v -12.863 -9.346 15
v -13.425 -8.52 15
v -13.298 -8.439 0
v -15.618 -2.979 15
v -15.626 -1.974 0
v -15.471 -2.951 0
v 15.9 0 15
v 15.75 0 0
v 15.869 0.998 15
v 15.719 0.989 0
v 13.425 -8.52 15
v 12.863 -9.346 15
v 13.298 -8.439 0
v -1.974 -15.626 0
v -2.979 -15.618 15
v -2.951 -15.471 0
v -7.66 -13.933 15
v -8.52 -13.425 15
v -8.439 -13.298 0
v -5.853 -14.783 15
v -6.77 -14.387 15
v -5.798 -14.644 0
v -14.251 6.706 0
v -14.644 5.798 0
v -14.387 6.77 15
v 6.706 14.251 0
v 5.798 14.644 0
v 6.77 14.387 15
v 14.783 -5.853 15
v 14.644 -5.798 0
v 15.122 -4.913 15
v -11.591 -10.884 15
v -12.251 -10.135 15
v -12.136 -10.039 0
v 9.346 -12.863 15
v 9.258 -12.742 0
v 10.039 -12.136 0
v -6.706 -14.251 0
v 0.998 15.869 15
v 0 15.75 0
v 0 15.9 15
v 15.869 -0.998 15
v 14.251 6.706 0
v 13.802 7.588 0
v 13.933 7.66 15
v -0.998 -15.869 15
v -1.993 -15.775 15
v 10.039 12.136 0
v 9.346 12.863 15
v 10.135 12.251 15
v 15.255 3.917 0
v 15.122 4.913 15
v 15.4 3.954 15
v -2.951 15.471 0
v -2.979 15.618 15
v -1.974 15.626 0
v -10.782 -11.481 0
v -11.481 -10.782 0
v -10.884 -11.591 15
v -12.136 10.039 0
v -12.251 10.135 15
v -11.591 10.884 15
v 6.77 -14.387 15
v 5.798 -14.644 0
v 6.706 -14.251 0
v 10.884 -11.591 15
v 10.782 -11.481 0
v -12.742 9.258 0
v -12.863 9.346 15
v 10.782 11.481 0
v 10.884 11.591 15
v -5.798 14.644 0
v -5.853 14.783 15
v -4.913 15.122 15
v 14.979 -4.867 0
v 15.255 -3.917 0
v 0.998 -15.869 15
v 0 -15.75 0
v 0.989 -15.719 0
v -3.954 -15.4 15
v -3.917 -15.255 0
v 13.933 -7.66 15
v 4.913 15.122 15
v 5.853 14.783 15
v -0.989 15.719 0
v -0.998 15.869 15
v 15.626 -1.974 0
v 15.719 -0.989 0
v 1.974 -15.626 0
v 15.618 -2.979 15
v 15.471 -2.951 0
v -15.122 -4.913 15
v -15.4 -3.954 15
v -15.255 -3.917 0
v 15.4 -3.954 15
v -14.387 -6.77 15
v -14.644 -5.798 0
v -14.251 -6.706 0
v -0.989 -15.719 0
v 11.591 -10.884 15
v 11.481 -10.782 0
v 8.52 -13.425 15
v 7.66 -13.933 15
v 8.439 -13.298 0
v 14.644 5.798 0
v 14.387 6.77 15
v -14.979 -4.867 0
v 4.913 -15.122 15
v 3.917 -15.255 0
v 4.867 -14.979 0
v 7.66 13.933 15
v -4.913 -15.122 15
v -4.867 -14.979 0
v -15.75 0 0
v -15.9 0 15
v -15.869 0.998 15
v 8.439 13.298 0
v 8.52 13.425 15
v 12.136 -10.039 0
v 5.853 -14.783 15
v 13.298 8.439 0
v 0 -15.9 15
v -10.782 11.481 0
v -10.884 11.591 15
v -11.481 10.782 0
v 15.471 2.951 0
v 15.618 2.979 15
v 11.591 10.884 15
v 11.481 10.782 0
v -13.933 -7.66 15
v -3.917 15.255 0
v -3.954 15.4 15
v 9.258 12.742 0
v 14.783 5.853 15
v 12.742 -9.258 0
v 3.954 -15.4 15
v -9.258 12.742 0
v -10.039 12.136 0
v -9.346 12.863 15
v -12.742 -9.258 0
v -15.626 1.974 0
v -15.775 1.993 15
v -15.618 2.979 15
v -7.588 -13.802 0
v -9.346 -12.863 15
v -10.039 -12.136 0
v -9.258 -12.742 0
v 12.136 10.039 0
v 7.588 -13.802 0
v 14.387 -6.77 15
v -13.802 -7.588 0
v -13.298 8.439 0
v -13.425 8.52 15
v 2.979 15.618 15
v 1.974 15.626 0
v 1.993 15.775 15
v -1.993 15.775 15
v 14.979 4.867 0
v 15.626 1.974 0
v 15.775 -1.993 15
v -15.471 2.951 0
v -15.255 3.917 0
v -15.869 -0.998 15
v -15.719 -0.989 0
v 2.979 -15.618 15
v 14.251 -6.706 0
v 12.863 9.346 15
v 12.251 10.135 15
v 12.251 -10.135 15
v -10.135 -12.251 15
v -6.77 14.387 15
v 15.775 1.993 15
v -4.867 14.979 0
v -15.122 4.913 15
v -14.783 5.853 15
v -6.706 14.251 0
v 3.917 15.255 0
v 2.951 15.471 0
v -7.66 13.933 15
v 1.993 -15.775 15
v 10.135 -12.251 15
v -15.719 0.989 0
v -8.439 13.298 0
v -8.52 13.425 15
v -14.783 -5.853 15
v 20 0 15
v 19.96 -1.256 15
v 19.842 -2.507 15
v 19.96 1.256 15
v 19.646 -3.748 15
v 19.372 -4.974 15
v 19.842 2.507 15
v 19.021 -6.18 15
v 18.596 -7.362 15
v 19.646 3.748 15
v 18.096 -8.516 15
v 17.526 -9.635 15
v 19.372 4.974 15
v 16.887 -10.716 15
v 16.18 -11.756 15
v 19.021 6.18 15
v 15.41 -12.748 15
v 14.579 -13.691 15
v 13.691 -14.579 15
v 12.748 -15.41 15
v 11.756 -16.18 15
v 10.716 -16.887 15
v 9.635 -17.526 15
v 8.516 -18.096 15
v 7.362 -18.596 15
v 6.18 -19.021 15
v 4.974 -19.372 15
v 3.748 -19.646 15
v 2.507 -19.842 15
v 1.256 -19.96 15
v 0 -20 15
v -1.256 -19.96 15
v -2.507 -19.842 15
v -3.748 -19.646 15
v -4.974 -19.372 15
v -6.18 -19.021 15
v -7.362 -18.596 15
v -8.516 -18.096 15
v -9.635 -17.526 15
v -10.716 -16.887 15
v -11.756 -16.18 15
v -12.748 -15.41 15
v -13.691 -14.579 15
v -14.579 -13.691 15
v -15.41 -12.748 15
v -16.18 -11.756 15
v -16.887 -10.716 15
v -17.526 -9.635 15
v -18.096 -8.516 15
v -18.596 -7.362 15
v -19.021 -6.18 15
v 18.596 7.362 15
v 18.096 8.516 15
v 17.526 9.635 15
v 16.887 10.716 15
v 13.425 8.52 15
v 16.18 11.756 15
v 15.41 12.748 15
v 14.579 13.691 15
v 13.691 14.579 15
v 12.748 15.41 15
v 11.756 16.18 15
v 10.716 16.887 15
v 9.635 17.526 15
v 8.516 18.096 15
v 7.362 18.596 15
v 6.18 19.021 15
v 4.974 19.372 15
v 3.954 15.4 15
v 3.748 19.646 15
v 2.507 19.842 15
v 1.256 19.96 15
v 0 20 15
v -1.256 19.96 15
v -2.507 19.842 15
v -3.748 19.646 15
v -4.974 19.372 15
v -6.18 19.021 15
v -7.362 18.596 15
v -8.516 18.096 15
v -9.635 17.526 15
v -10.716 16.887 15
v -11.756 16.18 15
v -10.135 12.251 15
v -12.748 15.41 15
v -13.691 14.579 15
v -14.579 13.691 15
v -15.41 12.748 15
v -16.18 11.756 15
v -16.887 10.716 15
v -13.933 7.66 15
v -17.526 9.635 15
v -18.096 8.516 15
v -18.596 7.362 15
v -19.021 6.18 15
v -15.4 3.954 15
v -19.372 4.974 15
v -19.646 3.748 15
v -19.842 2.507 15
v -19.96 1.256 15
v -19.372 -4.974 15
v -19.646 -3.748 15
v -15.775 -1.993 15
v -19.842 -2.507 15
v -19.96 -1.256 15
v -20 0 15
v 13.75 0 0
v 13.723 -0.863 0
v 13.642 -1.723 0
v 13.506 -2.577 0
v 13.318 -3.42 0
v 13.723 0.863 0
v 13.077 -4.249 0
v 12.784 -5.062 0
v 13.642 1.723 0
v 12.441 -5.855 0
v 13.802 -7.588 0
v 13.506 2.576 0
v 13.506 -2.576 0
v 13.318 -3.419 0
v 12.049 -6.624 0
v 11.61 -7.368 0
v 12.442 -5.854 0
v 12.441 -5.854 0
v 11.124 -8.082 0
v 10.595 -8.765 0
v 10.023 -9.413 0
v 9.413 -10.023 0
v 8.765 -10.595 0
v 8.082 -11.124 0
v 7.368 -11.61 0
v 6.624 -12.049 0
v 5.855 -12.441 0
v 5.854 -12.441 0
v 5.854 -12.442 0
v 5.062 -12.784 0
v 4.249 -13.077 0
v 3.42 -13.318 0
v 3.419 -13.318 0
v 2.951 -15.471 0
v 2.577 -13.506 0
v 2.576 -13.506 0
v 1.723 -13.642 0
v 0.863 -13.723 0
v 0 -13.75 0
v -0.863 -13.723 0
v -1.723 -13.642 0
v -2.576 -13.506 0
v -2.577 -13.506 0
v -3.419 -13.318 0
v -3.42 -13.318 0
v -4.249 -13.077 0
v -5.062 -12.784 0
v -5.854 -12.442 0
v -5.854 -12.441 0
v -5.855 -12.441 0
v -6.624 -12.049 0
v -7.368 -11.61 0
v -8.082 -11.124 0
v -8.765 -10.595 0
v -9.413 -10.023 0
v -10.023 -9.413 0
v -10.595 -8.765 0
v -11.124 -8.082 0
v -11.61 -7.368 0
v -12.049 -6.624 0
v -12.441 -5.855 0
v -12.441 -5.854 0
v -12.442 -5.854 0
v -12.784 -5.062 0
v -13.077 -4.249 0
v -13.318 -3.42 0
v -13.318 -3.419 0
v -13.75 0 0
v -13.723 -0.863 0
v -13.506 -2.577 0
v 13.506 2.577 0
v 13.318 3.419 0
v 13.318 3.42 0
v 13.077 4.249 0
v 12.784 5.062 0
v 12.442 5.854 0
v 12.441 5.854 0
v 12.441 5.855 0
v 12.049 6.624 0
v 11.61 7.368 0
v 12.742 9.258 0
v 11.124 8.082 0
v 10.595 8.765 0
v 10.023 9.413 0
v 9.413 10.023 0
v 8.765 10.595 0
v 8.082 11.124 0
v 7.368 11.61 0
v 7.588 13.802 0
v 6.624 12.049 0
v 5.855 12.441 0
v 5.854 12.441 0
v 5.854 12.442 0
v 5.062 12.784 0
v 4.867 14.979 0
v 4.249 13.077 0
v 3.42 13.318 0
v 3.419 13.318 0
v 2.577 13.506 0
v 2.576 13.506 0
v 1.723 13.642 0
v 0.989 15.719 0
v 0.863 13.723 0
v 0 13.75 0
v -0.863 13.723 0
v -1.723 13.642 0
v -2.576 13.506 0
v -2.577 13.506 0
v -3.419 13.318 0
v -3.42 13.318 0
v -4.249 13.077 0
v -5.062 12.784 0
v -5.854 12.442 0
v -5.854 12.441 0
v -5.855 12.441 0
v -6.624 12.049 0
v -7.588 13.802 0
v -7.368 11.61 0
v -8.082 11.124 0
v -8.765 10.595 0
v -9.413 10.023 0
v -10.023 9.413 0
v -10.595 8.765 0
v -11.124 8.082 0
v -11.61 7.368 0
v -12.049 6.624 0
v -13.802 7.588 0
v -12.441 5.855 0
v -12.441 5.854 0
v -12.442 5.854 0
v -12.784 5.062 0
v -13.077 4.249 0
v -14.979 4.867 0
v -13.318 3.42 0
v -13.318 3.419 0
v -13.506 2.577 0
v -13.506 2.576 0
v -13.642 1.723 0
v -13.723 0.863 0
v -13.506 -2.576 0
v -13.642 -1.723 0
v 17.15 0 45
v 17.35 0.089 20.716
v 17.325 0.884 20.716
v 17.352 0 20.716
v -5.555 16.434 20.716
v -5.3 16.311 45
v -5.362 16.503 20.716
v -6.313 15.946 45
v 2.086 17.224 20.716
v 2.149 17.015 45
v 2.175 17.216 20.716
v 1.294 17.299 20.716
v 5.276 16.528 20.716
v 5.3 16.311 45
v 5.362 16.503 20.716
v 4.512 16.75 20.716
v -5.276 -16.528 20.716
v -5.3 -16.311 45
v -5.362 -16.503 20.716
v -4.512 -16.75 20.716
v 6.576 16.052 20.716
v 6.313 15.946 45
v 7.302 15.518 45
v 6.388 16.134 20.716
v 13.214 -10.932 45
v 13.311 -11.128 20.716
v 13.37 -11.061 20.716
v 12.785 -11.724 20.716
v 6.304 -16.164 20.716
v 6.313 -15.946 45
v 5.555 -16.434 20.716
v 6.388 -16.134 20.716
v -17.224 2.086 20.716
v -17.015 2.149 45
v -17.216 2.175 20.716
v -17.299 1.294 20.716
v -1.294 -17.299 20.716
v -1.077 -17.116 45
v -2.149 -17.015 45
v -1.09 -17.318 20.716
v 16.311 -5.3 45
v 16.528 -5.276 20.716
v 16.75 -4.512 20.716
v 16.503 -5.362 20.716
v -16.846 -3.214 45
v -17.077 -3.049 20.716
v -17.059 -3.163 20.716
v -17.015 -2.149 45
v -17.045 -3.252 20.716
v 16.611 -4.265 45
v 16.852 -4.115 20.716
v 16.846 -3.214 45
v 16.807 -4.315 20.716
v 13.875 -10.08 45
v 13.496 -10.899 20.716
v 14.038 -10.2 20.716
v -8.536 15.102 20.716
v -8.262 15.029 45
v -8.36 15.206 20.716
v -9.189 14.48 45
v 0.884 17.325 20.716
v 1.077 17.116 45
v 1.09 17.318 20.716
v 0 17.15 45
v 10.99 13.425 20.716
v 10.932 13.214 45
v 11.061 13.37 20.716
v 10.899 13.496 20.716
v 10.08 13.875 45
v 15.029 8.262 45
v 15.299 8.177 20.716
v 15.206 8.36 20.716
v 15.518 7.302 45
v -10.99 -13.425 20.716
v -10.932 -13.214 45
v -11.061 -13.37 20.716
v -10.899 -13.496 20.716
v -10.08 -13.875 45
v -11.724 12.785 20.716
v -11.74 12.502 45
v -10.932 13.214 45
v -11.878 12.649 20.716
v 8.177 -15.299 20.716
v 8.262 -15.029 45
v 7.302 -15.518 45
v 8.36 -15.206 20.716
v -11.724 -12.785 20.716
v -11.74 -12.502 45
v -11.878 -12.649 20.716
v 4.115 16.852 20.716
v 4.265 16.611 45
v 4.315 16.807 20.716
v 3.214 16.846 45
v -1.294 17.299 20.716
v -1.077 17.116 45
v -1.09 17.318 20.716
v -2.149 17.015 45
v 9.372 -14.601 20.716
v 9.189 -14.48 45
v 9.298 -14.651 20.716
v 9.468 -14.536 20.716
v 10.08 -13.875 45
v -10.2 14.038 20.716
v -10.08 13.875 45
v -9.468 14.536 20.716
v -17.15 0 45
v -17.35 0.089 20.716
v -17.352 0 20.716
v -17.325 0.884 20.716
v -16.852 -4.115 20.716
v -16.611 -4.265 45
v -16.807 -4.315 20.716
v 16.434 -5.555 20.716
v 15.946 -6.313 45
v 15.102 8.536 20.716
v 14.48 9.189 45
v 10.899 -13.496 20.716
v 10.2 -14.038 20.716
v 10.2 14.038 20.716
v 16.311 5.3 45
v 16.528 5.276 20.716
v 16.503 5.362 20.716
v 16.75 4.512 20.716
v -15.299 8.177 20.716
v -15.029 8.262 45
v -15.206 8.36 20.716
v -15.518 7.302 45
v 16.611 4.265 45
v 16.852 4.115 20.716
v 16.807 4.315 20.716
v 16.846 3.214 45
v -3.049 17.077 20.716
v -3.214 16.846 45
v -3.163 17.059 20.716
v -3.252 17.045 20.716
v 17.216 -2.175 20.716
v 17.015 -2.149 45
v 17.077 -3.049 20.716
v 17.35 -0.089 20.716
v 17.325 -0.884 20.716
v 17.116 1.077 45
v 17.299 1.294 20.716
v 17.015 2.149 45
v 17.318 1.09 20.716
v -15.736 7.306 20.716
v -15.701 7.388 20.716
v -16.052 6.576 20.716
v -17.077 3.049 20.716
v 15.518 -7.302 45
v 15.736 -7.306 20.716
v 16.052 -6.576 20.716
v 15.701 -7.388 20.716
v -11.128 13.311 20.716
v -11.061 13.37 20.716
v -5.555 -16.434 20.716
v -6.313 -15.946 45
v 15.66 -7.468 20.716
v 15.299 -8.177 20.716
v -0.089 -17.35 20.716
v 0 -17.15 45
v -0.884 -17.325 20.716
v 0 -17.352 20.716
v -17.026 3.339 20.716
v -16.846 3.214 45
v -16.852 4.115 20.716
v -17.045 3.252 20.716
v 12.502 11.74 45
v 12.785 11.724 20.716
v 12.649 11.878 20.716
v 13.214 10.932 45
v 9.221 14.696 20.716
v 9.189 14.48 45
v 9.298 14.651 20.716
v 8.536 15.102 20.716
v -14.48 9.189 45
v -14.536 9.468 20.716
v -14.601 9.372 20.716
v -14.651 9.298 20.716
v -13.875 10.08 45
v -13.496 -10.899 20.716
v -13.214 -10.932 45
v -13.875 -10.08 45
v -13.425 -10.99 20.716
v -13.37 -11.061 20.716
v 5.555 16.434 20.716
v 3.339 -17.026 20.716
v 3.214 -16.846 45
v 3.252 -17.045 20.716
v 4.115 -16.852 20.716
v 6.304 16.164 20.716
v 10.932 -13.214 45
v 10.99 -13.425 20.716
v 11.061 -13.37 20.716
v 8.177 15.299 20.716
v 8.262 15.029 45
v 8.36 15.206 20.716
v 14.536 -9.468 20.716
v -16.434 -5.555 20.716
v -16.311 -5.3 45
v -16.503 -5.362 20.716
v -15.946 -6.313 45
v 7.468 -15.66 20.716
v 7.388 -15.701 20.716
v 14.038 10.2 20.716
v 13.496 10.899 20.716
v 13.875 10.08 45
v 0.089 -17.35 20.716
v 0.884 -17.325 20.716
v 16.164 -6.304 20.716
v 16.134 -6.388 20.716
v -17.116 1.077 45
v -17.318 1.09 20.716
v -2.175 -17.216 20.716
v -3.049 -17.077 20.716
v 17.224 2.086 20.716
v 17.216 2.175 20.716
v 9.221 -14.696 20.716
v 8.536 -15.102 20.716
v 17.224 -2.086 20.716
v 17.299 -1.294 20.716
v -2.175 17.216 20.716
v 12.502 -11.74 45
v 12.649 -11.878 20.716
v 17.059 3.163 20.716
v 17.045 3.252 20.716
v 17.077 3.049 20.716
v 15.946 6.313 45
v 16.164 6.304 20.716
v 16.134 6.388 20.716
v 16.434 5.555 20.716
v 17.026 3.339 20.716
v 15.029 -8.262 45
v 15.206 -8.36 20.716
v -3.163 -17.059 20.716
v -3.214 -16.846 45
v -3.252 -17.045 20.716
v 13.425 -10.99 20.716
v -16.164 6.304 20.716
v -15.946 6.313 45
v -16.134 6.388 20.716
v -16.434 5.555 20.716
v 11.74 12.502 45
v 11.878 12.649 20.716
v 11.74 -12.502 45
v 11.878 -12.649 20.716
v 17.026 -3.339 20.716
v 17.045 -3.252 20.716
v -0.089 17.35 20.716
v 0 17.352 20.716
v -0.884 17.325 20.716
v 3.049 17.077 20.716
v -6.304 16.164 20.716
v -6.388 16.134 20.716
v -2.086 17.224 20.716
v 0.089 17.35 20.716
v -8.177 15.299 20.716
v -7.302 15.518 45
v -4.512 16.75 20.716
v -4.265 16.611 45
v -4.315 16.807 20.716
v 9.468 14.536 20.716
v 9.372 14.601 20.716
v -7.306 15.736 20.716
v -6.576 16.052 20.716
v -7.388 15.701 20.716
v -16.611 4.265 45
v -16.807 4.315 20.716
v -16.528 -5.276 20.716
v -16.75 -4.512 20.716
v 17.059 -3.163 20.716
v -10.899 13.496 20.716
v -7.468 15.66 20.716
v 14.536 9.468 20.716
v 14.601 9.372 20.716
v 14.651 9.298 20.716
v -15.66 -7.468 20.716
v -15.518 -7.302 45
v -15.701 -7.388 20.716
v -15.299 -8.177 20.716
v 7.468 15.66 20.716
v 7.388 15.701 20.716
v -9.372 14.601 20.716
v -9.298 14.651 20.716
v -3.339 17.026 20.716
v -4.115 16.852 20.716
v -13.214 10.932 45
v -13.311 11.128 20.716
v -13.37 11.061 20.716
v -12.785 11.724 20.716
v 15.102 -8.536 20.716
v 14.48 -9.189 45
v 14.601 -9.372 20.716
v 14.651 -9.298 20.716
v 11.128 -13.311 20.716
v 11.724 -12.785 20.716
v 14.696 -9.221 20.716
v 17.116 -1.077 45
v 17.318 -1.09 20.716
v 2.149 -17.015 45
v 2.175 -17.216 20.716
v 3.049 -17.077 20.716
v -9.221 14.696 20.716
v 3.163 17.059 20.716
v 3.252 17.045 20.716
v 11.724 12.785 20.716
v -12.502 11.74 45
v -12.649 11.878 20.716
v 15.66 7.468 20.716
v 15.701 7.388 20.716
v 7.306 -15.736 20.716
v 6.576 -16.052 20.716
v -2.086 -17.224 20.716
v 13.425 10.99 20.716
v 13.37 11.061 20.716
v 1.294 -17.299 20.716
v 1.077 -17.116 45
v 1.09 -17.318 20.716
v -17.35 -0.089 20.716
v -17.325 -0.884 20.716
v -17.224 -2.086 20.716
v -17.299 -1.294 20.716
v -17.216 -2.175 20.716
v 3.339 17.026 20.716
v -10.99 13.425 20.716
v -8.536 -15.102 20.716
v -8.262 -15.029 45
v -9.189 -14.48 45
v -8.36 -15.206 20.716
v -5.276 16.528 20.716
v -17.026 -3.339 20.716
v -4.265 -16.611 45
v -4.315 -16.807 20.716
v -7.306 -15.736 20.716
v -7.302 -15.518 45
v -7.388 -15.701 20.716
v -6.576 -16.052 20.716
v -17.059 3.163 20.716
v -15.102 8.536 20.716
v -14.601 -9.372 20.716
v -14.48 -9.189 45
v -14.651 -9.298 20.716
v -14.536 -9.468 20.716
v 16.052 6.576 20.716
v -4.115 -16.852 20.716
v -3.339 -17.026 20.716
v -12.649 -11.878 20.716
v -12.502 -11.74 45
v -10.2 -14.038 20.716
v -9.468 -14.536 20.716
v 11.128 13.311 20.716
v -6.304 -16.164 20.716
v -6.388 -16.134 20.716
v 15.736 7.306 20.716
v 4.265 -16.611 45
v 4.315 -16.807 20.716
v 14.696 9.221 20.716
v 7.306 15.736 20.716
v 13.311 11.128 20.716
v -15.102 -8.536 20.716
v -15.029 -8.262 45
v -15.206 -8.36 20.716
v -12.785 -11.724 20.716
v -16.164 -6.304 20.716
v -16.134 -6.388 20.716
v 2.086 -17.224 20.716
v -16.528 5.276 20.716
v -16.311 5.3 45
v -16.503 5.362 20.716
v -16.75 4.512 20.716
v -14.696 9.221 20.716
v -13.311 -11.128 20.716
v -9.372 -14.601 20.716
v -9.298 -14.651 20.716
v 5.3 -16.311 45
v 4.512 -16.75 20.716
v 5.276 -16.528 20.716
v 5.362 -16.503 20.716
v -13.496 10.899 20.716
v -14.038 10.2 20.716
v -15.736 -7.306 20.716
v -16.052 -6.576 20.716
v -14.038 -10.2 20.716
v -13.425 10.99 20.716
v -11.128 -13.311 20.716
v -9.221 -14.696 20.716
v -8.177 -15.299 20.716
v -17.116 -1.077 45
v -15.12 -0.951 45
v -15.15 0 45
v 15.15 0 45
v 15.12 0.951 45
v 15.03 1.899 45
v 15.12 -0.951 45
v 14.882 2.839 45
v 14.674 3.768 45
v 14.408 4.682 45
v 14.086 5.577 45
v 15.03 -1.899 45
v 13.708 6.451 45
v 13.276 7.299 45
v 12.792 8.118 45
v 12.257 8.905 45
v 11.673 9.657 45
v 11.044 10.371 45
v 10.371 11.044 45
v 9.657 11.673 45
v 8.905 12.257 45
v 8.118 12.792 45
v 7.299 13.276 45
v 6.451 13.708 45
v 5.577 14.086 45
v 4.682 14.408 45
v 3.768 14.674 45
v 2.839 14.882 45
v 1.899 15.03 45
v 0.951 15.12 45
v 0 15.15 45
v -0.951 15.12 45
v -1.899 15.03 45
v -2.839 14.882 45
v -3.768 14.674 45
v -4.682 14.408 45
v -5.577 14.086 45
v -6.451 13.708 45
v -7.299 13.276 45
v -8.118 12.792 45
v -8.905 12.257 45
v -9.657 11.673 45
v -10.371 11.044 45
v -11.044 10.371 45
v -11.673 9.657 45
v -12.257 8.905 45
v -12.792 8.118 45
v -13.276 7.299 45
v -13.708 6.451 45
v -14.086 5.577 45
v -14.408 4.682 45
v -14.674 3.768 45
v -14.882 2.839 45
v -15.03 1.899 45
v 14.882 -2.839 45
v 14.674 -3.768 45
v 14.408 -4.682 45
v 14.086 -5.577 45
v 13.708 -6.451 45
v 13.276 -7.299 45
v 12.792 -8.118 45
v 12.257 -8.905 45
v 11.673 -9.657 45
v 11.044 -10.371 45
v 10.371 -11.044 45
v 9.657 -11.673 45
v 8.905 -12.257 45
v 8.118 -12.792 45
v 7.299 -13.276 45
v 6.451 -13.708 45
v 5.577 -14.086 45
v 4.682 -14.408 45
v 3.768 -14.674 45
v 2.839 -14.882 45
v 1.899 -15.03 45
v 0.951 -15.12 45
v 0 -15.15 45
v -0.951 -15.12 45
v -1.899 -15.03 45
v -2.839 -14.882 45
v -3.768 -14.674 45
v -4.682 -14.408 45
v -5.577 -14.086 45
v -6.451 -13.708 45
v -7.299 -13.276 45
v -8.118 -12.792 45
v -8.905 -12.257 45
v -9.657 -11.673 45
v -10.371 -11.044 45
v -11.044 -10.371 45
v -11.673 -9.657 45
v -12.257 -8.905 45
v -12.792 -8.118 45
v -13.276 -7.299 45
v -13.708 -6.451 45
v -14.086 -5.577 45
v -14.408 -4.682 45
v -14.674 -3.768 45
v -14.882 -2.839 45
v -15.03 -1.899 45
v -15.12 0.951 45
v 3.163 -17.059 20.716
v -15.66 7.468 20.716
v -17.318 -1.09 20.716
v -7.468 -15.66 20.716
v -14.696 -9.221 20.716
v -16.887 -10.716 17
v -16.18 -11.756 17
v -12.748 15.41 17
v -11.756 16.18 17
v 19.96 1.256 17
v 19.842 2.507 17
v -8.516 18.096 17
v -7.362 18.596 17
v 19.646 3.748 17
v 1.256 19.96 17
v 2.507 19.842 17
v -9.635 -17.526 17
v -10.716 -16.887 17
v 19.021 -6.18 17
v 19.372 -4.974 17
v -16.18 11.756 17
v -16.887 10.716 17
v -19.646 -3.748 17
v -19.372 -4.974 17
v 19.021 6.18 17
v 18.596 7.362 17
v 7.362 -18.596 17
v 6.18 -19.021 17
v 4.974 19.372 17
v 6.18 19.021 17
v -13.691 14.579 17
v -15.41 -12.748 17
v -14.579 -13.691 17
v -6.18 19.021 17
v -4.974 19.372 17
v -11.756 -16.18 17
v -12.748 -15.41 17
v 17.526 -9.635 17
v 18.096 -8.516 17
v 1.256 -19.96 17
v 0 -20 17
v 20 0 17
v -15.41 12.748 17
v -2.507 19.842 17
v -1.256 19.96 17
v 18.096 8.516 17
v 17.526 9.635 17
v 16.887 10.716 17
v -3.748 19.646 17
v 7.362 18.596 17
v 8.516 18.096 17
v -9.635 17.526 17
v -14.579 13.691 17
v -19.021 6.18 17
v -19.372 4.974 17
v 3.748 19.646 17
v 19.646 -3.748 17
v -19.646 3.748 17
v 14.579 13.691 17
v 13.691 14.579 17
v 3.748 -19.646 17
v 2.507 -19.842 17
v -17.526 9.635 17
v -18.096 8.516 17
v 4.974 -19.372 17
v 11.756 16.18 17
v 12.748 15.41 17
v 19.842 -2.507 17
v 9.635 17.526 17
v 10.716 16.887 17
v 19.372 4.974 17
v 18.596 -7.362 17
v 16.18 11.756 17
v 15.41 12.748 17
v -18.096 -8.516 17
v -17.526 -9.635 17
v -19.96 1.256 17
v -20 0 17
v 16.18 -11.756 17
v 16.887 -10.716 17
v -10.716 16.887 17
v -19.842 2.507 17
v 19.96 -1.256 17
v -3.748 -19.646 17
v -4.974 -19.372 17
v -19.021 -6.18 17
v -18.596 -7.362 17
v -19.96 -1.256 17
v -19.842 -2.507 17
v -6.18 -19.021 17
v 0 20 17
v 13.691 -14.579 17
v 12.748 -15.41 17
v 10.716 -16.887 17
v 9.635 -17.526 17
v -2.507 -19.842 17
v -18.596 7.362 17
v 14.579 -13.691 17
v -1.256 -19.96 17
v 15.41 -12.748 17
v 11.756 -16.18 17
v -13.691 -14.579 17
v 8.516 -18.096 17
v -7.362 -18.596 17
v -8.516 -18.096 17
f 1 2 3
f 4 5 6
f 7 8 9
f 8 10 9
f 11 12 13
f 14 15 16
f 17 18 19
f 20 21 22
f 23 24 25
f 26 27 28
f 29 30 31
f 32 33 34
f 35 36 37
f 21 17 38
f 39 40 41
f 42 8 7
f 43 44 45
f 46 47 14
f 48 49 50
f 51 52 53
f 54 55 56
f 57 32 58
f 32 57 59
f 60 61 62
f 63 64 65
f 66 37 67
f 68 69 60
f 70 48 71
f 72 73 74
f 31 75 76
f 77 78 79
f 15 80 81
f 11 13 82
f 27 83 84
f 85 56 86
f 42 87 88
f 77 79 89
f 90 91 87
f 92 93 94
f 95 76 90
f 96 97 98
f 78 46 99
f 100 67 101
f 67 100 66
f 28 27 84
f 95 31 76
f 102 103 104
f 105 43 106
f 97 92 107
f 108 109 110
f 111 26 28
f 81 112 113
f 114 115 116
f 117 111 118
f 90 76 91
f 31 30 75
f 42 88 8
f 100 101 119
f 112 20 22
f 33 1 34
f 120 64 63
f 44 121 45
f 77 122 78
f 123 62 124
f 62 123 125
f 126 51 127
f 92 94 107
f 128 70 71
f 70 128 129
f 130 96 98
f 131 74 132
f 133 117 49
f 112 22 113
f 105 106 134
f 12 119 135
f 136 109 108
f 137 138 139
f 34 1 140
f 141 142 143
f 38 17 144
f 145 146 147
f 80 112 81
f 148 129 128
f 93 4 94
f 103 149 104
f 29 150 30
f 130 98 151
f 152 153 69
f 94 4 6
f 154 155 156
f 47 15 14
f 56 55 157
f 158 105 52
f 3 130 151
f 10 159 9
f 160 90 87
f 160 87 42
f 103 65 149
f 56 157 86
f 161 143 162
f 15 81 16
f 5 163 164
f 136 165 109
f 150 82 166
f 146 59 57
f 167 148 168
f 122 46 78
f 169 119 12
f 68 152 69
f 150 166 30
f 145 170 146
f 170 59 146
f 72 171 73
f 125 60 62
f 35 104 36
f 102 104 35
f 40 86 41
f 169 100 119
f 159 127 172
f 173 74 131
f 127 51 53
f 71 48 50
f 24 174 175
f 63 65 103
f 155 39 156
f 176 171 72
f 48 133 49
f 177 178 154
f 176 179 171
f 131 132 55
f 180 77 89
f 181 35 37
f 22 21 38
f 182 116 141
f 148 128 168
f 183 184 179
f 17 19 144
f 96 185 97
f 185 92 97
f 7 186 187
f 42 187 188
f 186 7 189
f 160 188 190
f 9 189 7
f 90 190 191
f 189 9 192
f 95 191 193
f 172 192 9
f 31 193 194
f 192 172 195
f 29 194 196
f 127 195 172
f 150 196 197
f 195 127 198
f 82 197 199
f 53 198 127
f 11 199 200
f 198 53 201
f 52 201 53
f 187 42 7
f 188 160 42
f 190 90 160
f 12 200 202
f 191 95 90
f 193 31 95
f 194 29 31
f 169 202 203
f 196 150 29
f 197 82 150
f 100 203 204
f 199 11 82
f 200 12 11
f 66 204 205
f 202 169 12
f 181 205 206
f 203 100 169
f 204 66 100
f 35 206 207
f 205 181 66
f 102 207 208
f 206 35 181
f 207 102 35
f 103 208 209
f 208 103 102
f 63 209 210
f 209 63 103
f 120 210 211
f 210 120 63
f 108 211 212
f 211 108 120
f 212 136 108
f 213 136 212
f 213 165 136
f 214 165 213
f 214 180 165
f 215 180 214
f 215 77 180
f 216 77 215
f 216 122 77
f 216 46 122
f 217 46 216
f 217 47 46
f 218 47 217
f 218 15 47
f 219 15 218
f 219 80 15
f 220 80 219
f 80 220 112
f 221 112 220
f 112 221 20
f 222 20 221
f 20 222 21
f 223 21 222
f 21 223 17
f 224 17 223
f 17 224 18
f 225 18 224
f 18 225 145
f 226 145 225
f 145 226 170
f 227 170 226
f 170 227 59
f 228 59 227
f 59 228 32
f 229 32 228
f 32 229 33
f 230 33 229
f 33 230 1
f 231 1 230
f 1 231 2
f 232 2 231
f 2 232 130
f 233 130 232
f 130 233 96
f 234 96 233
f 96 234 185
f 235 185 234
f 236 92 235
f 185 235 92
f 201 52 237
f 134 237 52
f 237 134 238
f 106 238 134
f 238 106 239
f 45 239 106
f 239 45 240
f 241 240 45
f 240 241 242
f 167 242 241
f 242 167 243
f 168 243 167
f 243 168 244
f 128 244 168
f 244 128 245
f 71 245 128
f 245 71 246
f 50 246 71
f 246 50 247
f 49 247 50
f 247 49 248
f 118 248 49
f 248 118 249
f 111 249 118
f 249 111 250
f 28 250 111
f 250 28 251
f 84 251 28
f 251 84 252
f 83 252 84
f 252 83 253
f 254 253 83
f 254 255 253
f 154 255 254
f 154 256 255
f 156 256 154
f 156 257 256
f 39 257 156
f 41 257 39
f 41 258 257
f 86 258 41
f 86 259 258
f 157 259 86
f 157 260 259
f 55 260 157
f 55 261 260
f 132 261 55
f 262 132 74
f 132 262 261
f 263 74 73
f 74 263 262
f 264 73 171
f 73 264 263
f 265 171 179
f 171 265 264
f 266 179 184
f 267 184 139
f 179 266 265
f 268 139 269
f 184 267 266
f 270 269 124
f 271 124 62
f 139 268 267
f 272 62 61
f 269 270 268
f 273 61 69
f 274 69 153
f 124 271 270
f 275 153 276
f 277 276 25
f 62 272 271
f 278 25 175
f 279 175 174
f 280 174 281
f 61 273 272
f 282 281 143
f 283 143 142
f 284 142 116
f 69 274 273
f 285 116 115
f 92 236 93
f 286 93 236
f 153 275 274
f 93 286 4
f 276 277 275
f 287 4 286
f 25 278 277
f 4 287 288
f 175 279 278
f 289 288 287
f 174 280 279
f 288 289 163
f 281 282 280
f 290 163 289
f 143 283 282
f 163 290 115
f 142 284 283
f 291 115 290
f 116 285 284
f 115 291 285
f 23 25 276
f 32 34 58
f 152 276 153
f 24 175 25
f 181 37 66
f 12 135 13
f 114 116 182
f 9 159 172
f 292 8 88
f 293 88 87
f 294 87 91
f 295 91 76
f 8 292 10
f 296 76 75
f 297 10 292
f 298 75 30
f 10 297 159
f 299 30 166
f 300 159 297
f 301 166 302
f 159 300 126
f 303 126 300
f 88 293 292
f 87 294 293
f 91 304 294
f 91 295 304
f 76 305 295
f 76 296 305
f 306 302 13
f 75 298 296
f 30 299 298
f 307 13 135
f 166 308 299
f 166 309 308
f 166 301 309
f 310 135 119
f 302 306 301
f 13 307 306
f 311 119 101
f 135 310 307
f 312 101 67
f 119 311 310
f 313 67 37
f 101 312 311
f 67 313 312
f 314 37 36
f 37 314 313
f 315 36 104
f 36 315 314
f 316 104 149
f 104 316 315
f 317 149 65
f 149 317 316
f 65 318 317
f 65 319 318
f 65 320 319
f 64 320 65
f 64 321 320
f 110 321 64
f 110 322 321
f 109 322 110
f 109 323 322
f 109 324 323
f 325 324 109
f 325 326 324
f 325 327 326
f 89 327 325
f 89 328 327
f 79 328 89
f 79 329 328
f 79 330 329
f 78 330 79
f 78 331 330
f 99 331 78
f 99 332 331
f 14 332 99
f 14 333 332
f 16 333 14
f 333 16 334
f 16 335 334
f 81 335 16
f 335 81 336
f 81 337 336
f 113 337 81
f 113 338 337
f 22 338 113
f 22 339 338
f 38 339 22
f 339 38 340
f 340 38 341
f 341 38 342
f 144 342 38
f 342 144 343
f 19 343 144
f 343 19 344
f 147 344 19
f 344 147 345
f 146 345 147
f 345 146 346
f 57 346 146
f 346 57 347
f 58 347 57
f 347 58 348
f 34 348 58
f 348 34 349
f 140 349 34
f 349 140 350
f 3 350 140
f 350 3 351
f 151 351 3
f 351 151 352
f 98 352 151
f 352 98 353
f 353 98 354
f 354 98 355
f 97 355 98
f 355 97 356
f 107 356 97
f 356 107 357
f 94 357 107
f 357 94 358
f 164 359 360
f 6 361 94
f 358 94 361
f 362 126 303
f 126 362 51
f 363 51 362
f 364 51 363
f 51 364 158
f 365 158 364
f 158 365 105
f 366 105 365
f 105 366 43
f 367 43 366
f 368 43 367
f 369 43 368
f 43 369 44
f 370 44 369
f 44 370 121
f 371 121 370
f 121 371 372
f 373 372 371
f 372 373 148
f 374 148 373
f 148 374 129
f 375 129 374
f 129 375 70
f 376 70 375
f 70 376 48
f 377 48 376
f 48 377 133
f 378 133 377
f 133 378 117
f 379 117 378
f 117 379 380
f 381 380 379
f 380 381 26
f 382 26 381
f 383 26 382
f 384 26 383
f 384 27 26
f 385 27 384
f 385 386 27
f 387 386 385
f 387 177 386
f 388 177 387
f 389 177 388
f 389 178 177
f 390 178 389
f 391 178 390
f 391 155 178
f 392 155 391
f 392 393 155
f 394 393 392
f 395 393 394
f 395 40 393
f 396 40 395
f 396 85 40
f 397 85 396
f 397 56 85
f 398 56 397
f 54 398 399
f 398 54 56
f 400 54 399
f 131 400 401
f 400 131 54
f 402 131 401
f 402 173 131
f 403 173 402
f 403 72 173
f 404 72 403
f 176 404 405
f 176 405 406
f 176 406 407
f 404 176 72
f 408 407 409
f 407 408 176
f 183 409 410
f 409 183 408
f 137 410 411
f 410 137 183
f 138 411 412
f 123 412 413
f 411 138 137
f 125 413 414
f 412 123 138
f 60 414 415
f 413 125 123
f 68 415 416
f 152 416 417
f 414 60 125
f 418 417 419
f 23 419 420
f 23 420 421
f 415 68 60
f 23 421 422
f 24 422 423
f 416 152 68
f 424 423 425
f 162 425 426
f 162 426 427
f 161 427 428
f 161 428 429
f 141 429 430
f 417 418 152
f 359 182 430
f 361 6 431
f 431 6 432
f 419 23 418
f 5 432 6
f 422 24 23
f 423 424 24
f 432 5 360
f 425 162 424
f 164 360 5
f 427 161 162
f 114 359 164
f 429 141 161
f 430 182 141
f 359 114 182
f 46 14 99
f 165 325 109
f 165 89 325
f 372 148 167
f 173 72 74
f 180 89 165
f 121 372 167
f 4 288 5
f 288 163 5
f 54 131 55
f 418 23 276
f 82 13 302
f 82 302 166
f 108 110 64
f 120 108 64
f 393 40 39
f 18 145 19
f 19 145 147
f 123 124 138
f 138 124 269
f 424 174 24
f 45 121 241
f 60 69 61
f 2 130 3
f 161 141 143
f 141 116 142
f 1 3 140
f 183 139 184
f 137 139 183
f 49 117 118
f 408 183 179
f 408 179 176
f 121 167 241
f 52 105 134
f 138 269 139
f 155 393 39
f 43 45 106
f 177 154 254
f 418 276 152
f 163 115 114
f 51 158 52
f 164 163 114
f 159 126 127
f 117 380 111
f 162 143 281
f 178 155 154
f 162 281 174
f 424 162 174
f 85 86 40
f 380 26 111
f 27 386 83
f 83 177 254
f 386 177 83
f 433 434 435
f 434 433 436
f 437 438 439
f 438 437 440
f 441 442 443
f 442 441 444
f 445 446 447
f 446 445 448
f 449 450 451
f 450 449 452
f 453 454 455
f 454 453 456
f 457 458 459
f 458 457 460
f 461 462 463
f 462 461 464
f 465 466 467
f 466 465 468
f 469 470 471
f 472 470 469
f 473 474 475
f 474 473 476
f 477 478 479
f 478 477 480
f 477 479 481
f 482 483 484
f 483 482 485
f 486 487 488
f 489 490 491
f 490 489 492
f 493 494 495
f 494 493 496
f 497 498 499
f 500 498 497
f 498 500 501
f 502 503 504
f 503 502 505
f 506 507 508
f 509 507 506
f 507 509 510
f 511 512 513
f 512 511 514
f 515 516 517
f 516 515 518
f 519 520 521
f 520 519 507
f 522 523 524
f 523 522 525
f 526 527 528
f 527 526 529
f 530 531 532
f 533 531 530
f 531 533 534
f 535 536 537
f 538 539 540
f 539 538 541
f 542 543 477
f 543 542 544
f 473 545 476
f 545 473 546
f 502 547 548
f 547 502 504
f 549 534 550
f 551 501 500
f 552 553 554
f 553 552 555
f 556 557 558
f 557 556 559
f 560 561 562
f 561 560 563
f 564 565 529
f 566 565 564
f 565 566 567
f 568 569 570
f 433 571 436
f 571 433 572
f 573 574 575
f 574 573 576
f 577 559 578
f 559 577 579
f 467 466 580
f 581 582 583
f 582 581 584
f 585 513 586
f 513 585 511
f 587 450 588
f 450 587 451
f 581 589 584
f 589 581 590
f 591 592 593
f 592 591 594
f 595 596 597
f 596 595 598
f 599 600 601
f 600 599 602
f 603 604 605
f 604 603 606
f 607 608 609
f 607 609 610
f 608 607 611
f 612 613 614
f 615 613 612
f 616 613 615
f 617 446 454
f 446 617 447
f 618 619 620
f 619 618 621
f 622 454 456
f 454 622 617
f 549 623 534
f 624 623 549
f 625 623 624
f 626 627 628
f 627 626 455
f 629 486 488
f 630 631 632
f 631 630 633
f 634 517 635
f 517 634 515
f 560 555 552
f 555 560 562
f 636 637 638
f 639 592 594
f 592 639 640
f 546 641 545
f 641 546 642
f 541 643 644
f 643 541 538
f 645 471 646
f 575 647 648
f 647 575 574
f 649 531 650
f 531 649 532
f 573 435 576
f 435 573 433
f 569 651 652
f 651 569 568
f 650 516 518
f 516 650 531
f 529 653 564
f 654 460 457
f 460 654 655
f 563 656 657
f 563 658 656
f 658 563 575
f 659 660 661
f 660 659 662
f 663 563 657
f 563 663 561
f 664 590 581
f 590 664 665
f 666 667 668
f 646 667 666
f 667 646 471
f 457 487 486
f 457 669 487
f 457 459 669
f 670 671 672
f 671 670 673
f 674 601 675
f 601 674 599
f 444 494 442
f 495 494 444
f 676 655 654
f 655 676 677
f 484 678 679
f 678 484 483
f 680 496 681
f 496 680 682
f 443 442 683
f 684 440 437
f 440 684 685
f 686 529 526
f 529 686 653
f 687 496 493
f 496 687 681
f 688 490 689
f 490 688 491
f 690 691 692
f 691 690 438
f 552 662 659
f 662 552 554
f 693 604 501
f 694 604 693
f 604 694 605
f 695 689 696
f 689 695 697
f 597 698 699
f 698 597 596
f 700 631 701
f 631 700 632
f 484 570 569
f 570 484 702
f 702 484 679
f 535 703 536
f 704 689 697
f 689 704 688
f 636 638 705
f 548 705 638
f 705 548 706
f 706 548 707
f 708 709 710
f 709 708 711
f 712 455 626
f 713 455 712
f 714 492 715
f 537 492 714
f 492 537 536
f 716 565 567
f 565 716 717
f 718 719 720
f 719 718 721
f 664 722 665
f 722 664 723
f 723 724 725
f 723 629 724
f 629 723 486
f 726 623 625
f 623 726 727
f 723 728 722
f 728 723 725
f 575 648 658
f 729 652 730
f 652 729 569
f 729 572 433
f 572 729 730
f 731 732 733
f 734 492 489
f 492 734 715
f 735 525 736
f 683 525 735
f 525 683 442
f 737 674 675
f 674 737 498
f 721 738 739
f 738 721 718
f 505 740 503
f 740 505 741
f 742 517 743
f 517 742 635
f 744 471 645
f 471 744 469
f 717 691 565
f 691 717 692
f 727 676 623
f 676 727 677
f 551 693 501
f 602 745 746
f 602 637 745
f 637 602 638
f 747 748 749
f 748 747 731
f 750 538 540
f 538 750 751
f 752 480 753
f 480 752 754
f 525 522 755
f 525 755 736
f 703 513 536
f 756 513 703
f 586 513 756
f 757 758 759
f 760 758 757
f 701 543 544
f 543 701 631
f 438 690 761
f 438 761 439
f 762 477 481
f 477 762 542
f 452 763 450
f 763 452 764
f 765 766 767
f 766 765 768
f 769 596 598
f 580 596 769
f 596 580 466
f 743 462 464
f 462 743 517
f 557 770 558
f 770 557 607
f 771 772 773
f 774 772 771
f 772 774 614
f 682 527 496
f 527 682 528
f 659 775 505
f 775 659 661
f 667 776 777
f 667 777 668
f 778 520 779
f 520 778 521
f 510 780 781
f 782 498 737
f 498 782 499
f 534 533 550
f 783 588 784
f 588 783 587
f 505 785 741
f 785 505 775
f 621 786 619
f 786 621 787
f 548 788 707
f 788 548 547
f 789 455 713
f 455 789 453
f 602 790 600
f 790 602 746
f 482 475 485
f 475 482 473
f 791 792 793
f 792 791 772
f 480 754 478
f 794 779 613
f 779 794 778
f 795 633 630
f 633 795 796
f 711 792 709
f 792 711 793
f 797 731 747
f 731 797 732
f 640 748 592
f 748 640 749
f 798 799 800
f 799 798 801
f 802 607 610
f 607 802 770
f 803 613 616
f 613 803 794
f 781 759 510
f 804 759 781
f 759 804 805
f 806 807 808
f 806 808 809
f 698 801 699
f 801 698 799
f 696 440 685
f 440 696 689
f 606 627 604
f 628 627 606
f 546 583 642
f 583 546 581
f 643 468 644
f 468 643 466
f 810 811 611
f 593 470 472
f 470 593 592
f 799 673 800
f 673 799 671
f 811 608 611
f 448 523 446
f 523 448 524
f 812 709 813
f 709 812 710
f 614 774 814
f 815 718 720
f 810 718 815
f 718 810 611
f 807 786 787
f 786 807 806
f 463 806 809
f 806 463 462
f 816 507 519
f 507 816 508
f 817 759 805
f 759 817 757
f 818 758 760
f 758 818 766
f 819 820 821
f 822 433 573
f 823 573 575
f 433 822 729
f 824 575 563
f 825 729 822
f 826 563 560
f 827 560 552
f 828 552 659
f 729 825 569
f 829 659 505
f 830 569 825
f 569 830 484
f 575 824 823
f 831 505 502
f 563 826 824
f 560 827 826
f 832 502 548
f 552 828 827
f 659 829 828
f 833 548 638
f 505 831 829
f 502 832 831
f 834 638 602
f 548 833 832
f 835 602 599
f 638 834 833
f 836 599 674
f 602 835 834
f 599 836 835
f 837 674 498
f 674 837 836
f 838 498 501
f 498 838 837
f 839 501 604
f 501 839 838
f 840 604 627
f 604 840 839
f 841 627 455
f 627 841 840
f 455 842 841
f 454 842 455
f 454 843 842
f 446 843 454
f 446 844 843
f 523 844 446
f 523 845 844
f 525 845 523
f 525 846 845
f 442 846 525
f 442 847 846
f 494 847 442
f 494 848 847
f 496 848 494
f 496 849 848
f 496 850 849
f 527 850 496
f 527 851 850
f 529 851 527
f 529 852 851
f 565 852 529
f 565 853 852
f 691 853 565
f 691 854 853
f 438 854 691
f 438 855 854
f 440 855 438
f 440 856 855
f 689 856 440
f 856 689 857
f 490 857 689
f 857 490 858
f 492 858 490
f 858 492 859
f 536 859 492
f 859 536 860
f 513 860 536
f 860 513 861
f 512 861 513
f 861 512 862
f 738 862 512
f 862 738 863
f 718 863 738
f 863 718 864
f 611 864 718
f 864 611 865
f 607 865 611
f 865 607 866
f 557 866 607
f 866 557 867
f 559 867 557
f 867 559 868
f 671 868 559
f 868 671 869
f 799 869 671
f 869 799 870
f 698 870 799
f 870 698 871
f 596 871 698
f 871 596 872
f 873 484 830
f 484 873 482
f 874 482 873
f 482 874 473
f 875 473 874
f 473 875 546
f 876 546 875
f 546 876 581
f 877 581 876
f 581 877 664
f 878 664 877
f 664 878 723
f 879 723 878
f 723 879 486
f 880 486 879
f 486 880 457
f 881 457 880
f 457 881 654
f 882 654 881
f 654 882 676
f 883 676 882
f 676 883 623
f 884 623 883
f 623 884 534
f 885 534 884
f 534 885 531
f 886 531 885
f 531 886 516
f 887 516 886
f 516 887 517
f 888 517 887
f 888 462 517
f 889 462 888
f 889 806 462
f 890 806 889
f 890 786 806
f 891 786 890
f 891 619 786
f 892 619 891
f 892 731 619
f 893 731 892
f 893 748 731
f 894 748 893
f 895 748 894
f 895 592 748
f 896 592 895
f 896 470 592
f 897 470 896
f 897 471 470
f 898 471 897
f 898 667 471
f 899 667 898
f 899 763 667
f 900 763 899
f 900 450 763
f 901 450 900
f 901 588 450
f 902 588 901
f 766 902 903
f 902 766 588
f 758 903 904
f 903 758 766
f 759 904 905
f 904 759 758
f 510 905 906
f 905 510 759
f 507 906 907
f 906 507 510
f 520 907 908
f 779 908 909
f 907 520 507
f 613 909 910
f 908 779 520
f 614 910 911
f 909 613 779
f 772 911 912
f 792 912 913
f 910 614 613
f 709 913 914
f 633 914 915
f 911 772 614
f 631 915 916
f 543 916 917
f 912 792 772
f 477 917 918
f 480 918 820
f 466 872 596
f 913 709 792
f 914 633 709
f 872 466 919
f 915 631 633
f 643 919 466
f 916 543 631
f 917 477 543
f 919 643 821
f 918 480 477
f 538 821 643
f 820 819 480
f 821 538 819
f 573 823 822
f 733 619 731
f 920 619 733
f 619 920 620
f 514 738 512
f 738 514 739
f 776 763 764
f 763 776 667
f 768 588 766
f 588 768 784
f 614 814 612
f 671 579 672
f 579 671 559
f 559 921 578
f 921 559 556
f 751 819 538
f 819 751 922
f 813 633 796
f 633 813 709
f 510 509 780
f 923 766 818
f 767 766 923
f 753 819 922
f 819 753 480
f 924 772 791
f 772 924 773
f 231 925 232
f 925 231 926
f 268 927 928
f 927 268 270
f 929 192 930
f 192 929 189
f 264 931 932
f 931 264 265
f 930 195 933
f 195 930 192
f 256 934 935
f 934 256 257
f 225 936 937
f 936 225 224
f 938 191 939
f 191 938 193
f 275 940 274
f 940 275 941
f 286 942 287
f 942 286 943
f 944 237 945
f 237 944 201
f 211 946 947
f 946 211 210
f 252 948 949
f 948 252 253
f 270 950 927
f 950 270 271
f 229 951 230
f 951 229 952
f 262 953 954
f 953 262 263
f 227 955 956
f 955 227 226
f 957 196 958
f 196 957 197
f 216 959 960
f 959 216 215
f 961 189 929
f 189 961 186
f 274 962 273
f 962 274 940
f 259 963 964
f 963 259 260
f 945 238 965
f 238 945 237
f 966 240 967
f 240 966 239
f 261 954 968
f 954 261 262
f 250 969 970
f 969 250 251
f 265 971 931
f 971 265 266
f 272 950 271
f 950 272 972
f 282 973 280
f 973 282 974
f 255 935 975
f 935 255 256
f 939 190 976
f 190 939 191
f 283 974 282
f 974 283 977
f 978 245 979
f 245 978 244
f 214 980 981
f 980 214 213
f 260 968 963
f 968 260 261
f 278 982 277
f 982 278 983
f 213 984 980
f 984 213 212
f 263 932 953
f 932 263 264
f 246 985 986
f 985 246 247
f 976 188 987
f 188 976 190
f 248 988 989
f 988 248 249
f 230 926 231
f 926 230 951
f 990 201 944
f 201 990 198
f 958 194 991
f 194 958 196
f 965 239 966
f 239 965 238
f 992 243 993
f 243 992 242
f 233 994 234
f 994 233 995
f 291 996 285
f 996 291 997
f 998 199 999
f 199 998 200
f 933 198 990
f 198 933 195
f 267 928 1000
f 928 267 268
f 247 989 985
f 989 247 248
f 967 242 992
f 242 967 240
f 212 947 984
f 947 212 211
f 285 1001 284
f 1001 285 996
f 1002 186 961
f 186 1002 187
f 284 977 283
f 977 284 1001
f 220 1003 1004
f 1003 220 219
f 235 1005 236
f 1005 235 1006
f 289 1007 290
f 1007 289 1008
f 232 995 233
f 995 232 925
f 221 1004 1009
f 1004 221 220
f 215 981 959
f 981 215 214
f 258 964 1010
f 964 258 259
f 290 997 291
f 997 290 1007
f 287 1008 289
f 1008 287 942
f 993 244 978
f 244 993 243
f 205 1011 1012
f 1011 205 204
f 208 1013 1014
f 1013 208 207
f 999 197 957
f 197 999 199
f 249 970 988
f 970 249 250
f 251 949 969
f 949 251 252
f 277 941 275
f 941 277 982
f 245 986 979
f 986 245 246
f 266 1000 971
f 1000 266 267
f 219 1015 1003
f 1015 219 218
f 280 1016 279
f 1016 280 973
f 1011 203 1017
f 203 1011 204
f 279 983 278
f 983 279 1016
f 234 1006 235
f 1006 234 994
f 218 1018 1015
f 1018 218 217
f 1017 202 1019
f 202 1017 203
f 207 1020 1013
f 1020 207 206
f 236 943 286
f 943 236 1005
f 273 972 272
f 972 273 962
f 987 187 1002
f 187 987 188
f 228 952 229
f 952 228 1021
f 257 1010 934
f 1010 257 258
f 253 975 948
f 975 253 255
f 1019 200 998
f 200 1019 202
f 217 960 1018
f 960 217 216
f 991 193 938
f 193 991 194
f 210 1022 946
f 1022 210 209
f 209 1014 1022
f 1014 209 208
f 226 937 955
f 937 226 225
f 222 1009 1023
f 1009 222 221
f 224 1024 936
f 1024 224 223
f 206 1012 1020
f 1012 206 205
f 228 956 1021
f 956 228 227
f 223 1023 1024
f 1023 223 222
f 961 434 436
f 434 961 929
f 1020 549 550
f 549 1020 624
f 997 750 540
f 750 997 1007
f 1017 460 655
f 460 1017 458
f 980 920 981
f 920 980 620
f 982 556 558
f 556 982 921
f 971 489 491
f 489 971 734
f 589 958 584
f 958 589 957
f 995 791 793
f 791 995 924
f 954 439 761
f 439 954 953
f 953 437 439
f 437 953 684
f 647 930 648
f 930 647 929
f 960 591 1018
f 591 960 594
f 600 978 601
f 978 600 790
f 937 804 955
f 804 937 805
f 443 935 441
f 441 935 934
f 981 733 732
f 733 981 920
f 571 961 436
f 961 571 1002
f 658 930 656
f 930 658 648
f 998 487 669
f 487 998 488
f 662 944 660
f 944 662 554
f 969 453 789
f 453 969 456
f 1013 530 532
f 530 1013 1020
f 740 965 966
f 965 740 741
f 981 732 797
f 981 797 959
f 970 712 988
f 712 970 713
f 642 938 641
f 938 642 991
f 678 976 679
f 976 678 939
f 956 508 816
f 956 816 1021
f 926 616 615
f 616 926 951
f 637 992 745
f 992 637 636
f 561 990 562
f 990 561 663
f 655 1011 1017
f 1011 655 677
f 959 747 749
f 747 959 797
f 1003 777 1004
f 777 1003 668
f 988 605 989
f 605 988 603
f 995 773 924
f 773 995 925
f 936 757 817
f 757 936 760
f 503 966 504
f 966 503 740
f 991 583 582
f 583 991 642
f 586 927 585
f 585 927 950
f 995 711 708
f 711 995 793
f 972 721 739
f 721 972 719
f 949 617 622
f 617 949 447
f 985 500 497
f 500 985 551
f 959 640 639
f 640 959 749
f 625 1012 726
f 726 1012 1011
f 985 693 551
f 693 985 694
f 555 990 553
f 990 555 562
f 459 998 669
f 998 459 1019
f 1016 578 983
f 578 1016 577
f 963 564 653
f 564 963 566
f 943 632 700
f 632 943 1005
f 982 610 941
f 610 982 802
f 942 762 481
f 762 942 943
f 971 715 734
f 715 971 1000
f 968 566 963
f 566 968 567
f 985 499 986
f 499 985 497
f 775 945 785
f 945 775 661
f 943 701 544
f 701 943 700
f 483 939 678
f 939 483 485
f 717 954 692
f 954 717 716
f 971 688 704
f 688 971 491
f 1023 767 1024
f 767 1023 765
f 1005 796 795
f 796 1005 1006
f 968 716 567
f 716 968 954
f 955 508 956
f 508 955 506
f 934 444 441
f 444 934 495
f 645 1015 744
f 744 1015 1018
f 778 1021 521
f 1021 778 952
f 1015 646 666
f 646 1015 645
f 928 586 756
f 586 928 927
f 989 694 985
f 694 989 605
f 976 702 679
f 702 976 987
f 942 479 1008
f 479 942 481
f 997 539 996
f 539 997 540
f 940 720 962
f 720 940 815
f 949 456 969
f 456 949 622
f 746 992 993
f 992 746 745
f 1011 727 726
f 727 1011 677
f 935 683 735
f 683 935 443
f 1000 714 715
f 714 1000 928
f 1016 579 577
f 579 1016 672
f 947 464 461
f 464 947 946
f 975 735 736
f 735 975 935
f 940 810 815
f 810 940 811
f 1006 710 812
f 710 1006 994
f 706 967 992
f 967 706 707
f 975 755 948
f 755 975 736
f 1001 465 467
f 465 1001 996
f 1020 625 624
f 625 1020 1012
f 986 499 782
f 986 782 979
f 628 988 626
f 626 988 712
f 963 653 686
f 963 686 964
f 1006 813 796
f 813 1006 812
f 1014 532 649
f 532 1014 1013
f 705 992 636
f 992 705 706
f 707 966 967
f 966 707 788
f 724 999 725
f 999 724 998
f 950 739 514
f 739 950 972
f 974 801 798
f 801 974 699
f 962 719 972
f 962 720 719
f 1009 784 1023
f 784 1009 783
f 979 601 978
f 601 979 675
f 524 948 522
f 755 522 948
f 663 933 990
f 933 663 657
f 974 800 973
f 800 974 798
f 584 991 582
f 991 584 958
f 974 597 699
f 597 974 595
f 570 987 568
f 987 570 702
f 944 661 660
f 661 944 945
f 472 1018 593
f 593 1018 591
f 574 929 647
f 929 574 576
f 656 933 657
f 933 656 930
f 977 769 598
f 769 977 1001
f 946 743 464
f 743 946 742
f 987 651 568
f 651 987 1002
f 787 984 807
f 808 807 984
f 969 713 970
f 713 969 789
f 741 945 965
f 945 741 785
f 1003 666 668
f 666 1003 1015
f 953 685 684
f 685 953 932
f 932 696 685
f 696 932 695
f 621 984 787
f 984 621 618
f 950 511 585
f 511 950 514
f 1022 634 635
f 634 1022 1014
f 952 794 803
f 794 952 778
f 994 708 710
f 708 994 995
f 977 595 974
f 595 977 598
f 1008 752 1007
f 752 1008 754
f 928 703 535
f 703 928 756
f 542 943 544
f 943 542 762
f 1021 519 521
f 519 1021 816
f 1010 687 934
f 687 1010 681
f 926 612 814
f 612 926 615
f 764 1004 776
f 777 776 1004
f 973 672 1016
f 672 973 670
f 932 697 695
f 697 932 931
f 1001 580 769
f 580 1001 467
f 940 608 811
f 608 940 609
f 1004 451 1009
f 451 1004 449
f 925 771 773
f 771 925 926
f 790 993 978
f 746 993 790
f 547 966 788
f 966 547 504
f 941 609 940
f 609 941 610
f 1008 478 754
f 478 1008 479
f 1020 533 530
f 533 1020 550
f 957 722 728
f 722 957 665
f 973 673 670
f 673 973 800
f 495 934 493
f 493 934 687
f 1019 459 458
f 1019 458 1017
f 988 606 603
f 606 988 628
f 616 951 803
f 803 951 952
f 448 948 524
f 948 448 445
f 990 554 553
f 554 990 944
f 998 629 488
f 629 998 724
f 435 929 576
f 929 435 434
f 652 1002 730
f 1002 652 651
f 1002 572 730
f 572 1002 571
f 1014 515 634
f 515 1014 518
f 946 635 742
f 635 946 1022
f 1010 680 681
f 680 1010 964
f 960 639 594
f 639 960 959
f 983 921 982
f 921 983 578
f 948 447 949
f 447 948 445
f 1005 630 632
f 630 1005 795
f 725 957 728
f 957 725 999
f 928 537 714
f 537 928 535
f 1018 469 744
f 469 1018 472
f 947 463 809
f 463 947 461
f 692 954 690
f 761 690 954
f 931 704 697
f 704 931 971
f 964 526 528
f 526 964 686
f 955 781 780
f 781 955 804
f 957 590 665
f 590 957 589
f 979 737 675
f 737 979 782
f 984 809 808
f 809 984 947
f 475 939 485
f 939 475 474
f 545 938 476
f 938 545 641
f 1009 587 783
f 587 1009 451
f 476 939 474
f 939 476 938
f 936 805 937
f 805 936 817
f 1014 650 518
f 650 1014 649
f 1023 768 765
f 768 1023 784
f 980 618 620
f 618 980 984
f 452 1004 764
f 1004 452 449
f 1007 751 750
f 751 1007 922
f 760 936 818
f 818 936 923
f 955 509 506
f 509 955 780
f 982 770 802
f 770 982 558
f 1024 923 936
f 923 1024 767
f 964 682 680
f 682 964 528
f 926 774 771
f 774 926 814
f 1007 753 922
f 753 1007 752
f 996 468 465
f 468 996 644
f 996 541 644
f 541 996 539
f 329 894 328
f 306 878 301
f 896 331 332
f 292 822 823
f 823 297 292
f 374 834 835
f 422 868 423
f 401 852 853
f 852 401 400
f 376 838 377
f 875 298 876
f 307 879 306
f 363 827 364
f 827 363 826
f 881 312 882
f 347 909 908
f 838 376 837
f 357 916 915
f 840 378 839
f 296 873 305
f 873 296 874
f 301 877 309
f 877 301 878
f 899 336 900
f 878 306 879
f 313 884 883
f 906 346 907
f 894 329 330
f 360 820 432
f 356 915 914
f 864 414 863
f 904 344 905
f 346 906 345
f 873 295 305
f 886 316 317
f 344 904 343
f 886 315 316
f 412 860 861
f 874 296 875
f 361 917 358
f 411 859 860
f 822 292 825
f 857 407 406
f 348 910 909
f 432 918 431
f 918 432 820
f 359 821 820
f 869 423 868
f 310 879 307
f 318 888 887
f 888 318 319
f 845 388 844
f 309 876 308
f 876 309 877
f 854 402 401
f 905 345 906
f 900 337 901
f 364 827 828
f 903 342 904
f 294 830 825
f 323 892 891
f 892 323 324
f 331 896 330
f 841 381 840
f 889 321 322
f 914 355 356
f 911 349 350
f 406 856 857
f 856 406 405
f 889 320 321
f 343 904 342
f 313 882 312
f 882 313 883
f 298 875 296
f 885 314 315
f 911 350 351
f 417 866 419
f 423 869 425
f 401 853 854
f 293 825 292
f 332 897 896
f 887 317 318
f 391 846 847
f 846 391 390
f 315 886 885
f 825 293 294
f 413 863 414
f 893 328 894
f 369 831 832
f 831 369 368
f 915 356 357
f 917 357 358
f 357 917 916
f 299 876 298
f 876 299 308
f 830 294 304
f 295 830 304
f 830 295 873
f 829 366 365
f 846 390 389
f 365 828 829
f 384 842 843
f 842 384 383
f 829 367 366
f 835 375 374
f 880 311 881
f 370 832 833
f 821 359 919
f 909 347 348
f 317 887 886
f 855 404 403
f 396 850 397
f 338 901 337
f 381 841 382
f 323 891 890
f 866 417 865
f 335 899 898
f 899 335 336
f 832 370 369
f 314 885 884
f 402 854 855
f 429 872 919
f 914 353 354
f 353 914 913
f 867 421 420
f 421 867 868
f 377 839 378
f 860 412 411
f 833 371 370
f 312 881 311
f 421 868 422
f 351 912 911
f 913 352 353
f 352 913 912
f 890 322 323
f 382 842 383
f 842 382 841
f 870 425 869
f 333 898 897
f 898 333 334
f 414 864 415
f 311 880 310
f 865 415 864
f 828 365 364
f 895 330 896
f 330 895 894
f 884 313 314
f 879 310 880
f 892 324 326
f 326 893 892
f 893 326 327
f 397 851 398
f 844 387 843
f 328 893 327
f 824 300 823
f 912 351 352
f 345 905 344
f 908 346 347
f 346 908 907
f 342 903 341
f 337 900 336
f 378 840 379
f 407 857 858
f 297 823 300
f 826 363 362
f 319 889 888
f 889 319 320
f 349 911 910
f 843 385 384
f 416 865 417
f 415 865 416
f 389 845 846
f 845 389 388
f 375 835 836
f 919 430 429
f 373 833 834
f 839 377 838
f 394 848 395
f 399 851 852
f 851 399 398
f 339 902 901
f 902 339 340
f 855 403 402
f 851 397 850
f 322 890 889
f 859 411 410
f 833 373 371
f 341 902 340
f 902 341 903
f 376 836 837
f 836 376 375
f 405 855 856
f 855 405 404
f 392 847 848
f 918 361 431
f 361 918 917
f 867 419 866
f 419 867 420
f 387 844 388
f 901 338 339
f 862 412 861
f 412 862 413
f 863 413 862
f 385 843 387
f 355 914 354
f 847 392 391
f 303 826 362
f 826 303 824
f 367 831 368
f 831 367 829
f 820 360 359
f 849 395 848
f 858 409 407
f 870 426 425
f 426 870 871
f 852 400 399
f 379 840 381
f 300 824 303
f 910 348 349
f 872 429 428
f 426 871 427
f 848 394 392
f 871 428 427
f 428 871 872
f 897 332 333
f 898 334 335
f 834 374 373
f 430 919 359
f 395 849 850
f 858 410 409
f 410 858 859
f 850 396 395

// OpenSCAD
//
// ktHOLDER7
//
//


gap1 = 0.001;
gap2 = 0.003;

th = 2;

main = 31;
mmrg = 3;
main2 = 31;
mmrg2 = 0;
sub = 12;
smrg = 0;



A();

module A()
{
difference()
{
    union()
    {
        translate([0, 0, 15/2]) cylinder(h=15, r1=31.5/2, r2=31.8/2, center=true, $fn=100);
        translate([0, 0, 15+30/2]) cylinder(h=30, r1=34.8/2, r2=34.3/2, center=true, $fn=100);
        translate([0, 0, 15+2/2]) cylinder(h=2, r1=(40)/2, r2=(40)/2, center=true, $fn=100);
        translate([0, 0, 15+2+4/2]) cylinder(h=4, r1=(40)/2, r2=(40-5.7)/2, center=true, $fn=100);
    }
    
    translate([0, 0, 45/2-gap1]) cylinder(h=45+gap2, r1=(31.5-4)/2, r2=(34.3-4)/2, center=true, $fn=100);
    

}
}
